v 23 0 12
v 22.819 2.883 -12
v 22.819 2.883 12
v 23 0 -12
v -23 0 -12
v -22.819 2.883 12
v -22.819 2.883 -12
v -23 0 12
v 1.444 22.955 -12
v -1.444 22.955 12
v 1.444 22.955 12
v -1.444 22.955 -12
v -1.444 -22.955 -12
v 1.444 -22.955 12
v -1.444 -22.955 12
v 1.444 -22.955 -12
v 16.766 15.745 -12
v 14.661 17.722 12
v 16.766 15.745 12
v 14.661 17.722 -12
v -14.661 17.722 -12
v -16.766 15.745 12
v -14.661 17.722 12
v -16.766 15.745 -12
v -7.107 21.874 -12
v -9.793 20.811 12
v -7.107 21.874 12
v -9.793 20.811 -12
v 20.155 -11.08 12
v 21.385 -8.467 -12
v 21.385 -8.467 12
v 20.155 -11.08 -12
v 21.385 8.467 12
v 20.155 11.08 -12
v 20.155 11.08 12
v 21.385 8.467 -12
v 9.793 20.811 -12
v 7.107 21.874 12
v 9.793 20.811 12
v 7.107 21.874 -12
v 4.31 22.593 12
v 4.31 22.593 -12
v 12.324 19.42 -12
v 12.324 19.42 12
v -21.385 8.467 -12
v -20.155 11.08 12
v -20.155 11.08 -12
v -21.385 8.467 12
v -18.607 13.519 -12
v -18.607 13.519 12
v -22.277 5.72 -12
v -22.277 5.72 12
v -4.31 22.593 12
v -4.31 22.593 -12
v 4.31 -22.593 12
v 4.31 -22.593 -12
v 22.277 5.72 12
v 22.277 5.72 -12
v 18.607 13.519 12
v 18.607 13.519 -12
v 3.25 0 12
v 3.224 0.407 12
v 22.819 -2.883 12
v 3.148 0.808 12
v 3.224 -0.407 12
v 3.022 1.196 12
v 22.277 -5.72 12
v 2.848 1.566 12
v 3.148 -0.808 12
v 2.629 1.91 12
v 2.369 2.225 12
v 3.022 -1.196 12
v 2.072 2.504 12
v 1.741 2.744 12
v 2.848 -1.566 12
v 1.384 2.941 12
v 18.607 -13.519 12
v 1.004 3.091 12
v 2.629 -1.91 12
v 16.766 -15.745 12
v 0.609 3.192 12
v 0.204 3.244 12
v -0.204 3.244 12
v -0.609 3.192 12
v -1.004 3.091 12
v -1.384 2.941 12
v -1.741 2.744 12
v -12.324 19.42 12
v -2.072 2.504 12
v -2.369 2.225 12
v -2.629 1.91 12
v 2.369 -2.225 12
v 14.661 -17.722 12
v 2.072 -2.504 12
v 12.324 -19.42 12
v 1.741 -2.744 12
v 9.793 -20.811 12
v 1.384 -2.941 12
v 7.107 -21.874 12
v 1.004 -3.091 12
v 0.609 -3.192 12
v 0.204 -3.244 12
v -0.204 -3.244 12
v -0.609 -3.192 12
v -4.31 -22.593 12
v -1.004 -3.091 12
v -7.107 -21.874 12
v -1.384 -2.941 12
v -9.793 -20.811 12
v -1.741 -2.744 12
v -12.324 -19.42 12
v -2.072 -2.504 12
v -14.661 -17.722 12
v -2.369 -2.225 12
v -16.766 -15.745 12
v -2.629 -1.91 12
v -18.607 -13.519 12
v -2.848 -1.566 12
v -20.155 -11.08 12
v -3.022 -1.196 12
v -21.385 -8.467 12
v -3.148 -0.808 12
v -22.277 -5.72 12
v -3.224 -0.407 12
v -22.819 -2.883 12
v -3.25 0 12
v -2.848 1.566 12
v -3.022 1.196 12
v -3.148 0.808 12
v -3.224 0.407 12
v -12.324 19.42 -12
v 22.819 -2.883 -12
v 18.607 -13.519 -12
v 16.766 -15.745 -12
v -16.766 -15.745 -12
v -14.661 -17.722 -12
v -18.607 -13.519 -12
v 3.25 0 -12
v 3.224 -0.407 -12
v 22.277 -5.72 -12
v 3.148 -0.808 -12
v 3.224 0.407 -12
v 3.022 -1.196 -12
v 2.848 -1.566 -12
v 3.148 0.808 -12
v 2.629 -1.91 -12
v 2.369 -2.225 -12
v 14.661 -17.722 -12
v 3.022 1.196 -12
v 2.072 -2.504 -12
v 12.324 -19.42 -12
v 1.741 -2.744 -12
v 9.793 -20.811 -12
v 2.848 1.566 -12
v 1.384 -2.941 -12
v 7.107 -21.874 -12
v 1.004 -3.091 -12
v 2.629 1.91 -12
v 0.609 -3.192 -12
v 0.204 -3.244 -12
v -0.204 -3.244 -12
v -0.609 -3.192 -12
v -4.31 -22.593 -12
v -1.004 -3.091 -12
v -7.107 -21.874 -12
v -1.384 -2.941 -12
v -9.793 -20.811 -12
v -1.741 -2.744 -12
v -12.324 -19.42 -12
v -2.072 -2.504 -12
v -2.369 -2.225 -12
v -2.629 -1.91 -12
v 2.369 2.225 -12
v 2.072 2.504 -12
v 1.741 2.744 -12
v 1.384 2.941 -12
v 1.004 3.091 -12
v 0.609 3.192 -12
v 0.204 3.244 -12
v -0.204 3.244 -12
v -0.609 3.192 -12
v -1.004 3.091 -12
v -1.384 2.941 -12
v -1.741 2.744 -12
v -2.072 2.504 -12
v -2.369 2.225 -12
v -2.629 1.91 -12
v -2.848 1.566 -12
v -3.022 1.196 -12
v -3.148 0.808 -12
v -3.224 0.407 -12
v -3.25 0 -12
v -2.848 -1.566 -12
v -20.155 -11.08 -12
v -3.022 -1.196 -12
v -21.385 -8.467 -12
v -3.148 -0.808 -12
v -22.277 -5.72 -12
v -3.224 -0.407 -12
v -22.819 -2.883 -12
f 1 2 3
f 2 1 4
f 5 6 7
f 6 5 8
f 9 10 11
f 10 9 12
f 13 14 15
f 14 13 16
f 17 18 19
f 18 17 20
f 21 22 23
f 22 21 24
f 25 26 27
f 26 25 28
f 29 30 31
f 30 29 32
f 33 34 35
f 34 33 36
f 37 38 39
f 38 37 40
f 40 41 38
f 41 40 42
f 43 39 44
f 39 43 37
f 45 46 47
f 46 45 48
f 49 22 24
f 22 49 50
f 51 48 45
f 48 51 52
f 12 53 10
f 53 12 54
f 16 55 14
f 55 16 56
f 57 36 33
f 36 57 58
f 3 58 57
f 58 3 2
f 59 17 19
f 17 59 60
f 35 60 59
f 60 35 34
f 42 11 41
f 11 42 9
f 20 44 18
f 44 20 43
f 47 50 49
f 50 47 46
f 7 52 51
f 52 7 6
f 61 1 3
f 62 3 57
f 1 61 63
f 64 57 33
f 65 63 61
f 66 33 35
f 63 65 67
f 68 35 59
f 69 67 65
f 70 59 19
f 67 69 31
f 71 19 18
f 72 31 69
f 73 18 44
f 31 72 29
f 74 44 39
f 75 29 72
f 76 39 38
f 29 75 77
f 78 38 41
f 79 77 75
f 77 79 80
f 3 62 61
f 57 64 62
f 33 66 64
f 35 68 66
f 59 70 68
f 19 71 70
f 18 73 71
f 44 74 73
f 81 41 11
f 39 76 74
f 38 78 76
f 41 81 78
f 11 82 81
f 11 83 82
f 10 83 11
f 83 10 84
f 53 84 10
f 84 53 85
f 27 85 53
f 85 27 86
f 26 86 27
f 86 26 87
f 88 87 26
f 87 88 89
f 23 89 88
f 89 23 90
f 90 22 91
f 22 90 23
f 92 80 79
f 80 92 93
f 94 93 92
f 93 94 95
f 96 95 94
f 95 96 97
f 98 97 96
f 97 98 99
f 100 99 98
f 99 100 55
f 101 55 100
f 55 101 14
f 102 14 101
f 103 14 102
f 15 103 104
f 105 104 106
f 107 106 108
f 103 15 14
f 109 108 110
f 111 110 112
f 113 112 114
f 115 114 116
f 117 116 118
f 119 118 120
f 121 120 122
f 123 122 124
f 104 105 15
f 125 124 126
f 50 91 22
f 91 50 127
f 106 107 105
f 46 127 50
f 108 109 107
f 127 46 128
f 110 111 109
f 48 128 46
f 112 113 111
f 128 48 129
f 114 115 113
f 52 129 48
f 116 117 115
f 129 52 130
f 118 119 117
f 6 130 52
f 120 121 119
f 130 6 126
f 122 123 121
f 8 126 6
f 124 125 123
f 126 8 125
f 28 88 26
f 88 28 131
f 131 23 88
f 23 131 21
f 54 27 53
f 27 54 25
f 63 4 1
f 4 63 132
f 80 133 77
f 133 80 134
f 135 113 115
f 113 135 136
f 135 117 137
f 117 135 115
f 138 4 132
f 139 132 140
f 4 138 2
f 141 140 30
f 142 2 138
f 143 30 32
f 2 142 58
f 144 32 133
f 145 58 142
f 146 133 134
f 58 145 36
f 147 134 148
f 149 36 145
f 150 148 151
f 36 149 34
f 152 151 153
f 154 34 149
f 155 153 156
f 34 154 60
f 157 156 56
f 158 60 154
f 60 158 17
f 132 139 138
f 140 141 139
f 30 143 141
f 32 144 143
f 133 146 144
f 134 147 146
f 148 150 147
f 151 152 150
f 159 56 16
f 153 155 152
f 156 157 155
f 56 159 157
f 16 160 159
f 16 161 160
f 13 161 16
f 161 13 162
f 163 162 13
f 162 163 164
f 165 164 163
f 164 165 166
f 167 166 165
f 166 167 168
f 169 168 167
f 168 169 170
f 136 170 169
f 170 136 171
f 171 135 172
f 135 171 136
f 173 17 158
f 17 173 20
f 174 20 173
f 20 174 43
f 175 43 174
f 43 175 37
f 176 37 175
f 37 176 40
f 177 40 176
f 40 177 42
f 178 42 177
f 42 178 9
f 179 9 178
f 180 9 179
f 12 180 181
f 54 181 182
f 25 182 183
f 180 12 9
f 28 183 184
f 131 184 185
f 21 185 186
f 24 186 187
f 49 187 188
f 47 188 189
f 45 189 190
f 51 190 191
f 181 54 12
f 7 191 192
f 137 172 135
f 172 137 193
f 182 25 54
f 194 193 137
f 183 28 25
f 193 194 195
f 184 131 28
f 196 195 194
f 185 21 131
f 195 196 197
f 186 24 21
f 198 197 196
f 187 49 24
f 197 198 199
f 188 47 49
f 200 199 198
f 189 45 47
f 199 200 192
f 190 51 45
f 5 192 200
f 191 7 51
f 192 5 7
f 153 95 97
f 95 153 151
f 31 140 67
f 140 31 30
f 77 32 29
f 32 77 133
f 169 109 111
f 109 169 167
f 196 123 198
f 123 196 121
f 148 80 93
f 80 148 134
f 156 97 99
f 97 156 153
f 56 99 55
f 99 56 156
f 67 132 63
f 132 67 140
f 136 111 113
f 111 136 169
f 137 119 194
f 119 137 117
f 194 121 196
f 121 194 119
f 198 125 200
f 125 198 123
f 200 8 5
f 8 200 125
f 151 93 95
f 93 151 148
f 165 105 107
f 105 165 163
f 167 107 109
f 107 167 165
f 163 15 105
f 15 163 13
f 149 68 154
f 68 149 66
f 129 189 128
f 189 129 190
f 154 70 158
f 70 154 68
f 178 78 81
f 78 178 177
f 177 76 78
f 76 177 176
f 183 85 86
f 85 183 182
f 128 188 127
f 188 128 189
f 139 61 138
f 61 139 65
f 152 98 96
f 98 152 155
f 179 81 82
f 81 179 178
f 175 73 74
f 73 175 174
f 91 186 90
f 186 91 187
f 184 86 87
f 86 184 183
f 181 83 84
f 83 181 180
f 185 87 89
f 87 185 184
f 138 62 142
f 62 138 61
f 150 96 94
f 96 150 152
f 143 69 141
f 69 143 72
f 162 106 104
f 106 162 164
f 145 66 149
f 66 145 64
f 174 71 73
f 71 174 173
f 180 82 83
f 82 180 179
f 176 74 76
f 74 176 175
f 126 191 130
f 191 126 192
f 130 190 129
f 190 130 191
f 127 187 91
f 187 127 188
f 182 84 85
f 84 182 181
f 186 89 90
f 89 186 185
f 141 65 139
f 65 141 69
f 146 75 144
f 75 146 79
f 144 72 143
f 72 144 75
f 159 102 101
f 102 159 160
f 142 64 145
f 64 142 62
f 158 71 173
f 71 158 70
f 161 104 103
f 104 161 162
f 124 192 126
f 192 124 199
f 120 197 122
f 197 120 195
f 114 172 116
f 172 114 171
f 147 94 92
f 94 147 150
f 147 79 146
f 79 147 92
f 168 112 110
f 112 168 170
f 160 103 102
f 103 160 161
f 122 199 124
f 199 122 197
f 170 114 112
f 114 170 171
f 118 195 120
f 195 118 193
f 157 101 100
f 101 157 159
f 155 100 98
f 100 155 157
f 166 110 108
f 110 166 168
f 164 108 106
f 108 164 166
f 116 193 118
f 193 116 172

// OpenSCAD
$fn = 50;


difference() {
	union() {
		translate(v = [0, 0, -12.0000000000]) {
			cylinder(h = 24, r = 23.0000000000);
		}
	}
	union() {
		translate(v = [0, 0, -100.0000000000]) {
			cylinder(h = 200, r = 3.2500000000);
		}
	}
}
